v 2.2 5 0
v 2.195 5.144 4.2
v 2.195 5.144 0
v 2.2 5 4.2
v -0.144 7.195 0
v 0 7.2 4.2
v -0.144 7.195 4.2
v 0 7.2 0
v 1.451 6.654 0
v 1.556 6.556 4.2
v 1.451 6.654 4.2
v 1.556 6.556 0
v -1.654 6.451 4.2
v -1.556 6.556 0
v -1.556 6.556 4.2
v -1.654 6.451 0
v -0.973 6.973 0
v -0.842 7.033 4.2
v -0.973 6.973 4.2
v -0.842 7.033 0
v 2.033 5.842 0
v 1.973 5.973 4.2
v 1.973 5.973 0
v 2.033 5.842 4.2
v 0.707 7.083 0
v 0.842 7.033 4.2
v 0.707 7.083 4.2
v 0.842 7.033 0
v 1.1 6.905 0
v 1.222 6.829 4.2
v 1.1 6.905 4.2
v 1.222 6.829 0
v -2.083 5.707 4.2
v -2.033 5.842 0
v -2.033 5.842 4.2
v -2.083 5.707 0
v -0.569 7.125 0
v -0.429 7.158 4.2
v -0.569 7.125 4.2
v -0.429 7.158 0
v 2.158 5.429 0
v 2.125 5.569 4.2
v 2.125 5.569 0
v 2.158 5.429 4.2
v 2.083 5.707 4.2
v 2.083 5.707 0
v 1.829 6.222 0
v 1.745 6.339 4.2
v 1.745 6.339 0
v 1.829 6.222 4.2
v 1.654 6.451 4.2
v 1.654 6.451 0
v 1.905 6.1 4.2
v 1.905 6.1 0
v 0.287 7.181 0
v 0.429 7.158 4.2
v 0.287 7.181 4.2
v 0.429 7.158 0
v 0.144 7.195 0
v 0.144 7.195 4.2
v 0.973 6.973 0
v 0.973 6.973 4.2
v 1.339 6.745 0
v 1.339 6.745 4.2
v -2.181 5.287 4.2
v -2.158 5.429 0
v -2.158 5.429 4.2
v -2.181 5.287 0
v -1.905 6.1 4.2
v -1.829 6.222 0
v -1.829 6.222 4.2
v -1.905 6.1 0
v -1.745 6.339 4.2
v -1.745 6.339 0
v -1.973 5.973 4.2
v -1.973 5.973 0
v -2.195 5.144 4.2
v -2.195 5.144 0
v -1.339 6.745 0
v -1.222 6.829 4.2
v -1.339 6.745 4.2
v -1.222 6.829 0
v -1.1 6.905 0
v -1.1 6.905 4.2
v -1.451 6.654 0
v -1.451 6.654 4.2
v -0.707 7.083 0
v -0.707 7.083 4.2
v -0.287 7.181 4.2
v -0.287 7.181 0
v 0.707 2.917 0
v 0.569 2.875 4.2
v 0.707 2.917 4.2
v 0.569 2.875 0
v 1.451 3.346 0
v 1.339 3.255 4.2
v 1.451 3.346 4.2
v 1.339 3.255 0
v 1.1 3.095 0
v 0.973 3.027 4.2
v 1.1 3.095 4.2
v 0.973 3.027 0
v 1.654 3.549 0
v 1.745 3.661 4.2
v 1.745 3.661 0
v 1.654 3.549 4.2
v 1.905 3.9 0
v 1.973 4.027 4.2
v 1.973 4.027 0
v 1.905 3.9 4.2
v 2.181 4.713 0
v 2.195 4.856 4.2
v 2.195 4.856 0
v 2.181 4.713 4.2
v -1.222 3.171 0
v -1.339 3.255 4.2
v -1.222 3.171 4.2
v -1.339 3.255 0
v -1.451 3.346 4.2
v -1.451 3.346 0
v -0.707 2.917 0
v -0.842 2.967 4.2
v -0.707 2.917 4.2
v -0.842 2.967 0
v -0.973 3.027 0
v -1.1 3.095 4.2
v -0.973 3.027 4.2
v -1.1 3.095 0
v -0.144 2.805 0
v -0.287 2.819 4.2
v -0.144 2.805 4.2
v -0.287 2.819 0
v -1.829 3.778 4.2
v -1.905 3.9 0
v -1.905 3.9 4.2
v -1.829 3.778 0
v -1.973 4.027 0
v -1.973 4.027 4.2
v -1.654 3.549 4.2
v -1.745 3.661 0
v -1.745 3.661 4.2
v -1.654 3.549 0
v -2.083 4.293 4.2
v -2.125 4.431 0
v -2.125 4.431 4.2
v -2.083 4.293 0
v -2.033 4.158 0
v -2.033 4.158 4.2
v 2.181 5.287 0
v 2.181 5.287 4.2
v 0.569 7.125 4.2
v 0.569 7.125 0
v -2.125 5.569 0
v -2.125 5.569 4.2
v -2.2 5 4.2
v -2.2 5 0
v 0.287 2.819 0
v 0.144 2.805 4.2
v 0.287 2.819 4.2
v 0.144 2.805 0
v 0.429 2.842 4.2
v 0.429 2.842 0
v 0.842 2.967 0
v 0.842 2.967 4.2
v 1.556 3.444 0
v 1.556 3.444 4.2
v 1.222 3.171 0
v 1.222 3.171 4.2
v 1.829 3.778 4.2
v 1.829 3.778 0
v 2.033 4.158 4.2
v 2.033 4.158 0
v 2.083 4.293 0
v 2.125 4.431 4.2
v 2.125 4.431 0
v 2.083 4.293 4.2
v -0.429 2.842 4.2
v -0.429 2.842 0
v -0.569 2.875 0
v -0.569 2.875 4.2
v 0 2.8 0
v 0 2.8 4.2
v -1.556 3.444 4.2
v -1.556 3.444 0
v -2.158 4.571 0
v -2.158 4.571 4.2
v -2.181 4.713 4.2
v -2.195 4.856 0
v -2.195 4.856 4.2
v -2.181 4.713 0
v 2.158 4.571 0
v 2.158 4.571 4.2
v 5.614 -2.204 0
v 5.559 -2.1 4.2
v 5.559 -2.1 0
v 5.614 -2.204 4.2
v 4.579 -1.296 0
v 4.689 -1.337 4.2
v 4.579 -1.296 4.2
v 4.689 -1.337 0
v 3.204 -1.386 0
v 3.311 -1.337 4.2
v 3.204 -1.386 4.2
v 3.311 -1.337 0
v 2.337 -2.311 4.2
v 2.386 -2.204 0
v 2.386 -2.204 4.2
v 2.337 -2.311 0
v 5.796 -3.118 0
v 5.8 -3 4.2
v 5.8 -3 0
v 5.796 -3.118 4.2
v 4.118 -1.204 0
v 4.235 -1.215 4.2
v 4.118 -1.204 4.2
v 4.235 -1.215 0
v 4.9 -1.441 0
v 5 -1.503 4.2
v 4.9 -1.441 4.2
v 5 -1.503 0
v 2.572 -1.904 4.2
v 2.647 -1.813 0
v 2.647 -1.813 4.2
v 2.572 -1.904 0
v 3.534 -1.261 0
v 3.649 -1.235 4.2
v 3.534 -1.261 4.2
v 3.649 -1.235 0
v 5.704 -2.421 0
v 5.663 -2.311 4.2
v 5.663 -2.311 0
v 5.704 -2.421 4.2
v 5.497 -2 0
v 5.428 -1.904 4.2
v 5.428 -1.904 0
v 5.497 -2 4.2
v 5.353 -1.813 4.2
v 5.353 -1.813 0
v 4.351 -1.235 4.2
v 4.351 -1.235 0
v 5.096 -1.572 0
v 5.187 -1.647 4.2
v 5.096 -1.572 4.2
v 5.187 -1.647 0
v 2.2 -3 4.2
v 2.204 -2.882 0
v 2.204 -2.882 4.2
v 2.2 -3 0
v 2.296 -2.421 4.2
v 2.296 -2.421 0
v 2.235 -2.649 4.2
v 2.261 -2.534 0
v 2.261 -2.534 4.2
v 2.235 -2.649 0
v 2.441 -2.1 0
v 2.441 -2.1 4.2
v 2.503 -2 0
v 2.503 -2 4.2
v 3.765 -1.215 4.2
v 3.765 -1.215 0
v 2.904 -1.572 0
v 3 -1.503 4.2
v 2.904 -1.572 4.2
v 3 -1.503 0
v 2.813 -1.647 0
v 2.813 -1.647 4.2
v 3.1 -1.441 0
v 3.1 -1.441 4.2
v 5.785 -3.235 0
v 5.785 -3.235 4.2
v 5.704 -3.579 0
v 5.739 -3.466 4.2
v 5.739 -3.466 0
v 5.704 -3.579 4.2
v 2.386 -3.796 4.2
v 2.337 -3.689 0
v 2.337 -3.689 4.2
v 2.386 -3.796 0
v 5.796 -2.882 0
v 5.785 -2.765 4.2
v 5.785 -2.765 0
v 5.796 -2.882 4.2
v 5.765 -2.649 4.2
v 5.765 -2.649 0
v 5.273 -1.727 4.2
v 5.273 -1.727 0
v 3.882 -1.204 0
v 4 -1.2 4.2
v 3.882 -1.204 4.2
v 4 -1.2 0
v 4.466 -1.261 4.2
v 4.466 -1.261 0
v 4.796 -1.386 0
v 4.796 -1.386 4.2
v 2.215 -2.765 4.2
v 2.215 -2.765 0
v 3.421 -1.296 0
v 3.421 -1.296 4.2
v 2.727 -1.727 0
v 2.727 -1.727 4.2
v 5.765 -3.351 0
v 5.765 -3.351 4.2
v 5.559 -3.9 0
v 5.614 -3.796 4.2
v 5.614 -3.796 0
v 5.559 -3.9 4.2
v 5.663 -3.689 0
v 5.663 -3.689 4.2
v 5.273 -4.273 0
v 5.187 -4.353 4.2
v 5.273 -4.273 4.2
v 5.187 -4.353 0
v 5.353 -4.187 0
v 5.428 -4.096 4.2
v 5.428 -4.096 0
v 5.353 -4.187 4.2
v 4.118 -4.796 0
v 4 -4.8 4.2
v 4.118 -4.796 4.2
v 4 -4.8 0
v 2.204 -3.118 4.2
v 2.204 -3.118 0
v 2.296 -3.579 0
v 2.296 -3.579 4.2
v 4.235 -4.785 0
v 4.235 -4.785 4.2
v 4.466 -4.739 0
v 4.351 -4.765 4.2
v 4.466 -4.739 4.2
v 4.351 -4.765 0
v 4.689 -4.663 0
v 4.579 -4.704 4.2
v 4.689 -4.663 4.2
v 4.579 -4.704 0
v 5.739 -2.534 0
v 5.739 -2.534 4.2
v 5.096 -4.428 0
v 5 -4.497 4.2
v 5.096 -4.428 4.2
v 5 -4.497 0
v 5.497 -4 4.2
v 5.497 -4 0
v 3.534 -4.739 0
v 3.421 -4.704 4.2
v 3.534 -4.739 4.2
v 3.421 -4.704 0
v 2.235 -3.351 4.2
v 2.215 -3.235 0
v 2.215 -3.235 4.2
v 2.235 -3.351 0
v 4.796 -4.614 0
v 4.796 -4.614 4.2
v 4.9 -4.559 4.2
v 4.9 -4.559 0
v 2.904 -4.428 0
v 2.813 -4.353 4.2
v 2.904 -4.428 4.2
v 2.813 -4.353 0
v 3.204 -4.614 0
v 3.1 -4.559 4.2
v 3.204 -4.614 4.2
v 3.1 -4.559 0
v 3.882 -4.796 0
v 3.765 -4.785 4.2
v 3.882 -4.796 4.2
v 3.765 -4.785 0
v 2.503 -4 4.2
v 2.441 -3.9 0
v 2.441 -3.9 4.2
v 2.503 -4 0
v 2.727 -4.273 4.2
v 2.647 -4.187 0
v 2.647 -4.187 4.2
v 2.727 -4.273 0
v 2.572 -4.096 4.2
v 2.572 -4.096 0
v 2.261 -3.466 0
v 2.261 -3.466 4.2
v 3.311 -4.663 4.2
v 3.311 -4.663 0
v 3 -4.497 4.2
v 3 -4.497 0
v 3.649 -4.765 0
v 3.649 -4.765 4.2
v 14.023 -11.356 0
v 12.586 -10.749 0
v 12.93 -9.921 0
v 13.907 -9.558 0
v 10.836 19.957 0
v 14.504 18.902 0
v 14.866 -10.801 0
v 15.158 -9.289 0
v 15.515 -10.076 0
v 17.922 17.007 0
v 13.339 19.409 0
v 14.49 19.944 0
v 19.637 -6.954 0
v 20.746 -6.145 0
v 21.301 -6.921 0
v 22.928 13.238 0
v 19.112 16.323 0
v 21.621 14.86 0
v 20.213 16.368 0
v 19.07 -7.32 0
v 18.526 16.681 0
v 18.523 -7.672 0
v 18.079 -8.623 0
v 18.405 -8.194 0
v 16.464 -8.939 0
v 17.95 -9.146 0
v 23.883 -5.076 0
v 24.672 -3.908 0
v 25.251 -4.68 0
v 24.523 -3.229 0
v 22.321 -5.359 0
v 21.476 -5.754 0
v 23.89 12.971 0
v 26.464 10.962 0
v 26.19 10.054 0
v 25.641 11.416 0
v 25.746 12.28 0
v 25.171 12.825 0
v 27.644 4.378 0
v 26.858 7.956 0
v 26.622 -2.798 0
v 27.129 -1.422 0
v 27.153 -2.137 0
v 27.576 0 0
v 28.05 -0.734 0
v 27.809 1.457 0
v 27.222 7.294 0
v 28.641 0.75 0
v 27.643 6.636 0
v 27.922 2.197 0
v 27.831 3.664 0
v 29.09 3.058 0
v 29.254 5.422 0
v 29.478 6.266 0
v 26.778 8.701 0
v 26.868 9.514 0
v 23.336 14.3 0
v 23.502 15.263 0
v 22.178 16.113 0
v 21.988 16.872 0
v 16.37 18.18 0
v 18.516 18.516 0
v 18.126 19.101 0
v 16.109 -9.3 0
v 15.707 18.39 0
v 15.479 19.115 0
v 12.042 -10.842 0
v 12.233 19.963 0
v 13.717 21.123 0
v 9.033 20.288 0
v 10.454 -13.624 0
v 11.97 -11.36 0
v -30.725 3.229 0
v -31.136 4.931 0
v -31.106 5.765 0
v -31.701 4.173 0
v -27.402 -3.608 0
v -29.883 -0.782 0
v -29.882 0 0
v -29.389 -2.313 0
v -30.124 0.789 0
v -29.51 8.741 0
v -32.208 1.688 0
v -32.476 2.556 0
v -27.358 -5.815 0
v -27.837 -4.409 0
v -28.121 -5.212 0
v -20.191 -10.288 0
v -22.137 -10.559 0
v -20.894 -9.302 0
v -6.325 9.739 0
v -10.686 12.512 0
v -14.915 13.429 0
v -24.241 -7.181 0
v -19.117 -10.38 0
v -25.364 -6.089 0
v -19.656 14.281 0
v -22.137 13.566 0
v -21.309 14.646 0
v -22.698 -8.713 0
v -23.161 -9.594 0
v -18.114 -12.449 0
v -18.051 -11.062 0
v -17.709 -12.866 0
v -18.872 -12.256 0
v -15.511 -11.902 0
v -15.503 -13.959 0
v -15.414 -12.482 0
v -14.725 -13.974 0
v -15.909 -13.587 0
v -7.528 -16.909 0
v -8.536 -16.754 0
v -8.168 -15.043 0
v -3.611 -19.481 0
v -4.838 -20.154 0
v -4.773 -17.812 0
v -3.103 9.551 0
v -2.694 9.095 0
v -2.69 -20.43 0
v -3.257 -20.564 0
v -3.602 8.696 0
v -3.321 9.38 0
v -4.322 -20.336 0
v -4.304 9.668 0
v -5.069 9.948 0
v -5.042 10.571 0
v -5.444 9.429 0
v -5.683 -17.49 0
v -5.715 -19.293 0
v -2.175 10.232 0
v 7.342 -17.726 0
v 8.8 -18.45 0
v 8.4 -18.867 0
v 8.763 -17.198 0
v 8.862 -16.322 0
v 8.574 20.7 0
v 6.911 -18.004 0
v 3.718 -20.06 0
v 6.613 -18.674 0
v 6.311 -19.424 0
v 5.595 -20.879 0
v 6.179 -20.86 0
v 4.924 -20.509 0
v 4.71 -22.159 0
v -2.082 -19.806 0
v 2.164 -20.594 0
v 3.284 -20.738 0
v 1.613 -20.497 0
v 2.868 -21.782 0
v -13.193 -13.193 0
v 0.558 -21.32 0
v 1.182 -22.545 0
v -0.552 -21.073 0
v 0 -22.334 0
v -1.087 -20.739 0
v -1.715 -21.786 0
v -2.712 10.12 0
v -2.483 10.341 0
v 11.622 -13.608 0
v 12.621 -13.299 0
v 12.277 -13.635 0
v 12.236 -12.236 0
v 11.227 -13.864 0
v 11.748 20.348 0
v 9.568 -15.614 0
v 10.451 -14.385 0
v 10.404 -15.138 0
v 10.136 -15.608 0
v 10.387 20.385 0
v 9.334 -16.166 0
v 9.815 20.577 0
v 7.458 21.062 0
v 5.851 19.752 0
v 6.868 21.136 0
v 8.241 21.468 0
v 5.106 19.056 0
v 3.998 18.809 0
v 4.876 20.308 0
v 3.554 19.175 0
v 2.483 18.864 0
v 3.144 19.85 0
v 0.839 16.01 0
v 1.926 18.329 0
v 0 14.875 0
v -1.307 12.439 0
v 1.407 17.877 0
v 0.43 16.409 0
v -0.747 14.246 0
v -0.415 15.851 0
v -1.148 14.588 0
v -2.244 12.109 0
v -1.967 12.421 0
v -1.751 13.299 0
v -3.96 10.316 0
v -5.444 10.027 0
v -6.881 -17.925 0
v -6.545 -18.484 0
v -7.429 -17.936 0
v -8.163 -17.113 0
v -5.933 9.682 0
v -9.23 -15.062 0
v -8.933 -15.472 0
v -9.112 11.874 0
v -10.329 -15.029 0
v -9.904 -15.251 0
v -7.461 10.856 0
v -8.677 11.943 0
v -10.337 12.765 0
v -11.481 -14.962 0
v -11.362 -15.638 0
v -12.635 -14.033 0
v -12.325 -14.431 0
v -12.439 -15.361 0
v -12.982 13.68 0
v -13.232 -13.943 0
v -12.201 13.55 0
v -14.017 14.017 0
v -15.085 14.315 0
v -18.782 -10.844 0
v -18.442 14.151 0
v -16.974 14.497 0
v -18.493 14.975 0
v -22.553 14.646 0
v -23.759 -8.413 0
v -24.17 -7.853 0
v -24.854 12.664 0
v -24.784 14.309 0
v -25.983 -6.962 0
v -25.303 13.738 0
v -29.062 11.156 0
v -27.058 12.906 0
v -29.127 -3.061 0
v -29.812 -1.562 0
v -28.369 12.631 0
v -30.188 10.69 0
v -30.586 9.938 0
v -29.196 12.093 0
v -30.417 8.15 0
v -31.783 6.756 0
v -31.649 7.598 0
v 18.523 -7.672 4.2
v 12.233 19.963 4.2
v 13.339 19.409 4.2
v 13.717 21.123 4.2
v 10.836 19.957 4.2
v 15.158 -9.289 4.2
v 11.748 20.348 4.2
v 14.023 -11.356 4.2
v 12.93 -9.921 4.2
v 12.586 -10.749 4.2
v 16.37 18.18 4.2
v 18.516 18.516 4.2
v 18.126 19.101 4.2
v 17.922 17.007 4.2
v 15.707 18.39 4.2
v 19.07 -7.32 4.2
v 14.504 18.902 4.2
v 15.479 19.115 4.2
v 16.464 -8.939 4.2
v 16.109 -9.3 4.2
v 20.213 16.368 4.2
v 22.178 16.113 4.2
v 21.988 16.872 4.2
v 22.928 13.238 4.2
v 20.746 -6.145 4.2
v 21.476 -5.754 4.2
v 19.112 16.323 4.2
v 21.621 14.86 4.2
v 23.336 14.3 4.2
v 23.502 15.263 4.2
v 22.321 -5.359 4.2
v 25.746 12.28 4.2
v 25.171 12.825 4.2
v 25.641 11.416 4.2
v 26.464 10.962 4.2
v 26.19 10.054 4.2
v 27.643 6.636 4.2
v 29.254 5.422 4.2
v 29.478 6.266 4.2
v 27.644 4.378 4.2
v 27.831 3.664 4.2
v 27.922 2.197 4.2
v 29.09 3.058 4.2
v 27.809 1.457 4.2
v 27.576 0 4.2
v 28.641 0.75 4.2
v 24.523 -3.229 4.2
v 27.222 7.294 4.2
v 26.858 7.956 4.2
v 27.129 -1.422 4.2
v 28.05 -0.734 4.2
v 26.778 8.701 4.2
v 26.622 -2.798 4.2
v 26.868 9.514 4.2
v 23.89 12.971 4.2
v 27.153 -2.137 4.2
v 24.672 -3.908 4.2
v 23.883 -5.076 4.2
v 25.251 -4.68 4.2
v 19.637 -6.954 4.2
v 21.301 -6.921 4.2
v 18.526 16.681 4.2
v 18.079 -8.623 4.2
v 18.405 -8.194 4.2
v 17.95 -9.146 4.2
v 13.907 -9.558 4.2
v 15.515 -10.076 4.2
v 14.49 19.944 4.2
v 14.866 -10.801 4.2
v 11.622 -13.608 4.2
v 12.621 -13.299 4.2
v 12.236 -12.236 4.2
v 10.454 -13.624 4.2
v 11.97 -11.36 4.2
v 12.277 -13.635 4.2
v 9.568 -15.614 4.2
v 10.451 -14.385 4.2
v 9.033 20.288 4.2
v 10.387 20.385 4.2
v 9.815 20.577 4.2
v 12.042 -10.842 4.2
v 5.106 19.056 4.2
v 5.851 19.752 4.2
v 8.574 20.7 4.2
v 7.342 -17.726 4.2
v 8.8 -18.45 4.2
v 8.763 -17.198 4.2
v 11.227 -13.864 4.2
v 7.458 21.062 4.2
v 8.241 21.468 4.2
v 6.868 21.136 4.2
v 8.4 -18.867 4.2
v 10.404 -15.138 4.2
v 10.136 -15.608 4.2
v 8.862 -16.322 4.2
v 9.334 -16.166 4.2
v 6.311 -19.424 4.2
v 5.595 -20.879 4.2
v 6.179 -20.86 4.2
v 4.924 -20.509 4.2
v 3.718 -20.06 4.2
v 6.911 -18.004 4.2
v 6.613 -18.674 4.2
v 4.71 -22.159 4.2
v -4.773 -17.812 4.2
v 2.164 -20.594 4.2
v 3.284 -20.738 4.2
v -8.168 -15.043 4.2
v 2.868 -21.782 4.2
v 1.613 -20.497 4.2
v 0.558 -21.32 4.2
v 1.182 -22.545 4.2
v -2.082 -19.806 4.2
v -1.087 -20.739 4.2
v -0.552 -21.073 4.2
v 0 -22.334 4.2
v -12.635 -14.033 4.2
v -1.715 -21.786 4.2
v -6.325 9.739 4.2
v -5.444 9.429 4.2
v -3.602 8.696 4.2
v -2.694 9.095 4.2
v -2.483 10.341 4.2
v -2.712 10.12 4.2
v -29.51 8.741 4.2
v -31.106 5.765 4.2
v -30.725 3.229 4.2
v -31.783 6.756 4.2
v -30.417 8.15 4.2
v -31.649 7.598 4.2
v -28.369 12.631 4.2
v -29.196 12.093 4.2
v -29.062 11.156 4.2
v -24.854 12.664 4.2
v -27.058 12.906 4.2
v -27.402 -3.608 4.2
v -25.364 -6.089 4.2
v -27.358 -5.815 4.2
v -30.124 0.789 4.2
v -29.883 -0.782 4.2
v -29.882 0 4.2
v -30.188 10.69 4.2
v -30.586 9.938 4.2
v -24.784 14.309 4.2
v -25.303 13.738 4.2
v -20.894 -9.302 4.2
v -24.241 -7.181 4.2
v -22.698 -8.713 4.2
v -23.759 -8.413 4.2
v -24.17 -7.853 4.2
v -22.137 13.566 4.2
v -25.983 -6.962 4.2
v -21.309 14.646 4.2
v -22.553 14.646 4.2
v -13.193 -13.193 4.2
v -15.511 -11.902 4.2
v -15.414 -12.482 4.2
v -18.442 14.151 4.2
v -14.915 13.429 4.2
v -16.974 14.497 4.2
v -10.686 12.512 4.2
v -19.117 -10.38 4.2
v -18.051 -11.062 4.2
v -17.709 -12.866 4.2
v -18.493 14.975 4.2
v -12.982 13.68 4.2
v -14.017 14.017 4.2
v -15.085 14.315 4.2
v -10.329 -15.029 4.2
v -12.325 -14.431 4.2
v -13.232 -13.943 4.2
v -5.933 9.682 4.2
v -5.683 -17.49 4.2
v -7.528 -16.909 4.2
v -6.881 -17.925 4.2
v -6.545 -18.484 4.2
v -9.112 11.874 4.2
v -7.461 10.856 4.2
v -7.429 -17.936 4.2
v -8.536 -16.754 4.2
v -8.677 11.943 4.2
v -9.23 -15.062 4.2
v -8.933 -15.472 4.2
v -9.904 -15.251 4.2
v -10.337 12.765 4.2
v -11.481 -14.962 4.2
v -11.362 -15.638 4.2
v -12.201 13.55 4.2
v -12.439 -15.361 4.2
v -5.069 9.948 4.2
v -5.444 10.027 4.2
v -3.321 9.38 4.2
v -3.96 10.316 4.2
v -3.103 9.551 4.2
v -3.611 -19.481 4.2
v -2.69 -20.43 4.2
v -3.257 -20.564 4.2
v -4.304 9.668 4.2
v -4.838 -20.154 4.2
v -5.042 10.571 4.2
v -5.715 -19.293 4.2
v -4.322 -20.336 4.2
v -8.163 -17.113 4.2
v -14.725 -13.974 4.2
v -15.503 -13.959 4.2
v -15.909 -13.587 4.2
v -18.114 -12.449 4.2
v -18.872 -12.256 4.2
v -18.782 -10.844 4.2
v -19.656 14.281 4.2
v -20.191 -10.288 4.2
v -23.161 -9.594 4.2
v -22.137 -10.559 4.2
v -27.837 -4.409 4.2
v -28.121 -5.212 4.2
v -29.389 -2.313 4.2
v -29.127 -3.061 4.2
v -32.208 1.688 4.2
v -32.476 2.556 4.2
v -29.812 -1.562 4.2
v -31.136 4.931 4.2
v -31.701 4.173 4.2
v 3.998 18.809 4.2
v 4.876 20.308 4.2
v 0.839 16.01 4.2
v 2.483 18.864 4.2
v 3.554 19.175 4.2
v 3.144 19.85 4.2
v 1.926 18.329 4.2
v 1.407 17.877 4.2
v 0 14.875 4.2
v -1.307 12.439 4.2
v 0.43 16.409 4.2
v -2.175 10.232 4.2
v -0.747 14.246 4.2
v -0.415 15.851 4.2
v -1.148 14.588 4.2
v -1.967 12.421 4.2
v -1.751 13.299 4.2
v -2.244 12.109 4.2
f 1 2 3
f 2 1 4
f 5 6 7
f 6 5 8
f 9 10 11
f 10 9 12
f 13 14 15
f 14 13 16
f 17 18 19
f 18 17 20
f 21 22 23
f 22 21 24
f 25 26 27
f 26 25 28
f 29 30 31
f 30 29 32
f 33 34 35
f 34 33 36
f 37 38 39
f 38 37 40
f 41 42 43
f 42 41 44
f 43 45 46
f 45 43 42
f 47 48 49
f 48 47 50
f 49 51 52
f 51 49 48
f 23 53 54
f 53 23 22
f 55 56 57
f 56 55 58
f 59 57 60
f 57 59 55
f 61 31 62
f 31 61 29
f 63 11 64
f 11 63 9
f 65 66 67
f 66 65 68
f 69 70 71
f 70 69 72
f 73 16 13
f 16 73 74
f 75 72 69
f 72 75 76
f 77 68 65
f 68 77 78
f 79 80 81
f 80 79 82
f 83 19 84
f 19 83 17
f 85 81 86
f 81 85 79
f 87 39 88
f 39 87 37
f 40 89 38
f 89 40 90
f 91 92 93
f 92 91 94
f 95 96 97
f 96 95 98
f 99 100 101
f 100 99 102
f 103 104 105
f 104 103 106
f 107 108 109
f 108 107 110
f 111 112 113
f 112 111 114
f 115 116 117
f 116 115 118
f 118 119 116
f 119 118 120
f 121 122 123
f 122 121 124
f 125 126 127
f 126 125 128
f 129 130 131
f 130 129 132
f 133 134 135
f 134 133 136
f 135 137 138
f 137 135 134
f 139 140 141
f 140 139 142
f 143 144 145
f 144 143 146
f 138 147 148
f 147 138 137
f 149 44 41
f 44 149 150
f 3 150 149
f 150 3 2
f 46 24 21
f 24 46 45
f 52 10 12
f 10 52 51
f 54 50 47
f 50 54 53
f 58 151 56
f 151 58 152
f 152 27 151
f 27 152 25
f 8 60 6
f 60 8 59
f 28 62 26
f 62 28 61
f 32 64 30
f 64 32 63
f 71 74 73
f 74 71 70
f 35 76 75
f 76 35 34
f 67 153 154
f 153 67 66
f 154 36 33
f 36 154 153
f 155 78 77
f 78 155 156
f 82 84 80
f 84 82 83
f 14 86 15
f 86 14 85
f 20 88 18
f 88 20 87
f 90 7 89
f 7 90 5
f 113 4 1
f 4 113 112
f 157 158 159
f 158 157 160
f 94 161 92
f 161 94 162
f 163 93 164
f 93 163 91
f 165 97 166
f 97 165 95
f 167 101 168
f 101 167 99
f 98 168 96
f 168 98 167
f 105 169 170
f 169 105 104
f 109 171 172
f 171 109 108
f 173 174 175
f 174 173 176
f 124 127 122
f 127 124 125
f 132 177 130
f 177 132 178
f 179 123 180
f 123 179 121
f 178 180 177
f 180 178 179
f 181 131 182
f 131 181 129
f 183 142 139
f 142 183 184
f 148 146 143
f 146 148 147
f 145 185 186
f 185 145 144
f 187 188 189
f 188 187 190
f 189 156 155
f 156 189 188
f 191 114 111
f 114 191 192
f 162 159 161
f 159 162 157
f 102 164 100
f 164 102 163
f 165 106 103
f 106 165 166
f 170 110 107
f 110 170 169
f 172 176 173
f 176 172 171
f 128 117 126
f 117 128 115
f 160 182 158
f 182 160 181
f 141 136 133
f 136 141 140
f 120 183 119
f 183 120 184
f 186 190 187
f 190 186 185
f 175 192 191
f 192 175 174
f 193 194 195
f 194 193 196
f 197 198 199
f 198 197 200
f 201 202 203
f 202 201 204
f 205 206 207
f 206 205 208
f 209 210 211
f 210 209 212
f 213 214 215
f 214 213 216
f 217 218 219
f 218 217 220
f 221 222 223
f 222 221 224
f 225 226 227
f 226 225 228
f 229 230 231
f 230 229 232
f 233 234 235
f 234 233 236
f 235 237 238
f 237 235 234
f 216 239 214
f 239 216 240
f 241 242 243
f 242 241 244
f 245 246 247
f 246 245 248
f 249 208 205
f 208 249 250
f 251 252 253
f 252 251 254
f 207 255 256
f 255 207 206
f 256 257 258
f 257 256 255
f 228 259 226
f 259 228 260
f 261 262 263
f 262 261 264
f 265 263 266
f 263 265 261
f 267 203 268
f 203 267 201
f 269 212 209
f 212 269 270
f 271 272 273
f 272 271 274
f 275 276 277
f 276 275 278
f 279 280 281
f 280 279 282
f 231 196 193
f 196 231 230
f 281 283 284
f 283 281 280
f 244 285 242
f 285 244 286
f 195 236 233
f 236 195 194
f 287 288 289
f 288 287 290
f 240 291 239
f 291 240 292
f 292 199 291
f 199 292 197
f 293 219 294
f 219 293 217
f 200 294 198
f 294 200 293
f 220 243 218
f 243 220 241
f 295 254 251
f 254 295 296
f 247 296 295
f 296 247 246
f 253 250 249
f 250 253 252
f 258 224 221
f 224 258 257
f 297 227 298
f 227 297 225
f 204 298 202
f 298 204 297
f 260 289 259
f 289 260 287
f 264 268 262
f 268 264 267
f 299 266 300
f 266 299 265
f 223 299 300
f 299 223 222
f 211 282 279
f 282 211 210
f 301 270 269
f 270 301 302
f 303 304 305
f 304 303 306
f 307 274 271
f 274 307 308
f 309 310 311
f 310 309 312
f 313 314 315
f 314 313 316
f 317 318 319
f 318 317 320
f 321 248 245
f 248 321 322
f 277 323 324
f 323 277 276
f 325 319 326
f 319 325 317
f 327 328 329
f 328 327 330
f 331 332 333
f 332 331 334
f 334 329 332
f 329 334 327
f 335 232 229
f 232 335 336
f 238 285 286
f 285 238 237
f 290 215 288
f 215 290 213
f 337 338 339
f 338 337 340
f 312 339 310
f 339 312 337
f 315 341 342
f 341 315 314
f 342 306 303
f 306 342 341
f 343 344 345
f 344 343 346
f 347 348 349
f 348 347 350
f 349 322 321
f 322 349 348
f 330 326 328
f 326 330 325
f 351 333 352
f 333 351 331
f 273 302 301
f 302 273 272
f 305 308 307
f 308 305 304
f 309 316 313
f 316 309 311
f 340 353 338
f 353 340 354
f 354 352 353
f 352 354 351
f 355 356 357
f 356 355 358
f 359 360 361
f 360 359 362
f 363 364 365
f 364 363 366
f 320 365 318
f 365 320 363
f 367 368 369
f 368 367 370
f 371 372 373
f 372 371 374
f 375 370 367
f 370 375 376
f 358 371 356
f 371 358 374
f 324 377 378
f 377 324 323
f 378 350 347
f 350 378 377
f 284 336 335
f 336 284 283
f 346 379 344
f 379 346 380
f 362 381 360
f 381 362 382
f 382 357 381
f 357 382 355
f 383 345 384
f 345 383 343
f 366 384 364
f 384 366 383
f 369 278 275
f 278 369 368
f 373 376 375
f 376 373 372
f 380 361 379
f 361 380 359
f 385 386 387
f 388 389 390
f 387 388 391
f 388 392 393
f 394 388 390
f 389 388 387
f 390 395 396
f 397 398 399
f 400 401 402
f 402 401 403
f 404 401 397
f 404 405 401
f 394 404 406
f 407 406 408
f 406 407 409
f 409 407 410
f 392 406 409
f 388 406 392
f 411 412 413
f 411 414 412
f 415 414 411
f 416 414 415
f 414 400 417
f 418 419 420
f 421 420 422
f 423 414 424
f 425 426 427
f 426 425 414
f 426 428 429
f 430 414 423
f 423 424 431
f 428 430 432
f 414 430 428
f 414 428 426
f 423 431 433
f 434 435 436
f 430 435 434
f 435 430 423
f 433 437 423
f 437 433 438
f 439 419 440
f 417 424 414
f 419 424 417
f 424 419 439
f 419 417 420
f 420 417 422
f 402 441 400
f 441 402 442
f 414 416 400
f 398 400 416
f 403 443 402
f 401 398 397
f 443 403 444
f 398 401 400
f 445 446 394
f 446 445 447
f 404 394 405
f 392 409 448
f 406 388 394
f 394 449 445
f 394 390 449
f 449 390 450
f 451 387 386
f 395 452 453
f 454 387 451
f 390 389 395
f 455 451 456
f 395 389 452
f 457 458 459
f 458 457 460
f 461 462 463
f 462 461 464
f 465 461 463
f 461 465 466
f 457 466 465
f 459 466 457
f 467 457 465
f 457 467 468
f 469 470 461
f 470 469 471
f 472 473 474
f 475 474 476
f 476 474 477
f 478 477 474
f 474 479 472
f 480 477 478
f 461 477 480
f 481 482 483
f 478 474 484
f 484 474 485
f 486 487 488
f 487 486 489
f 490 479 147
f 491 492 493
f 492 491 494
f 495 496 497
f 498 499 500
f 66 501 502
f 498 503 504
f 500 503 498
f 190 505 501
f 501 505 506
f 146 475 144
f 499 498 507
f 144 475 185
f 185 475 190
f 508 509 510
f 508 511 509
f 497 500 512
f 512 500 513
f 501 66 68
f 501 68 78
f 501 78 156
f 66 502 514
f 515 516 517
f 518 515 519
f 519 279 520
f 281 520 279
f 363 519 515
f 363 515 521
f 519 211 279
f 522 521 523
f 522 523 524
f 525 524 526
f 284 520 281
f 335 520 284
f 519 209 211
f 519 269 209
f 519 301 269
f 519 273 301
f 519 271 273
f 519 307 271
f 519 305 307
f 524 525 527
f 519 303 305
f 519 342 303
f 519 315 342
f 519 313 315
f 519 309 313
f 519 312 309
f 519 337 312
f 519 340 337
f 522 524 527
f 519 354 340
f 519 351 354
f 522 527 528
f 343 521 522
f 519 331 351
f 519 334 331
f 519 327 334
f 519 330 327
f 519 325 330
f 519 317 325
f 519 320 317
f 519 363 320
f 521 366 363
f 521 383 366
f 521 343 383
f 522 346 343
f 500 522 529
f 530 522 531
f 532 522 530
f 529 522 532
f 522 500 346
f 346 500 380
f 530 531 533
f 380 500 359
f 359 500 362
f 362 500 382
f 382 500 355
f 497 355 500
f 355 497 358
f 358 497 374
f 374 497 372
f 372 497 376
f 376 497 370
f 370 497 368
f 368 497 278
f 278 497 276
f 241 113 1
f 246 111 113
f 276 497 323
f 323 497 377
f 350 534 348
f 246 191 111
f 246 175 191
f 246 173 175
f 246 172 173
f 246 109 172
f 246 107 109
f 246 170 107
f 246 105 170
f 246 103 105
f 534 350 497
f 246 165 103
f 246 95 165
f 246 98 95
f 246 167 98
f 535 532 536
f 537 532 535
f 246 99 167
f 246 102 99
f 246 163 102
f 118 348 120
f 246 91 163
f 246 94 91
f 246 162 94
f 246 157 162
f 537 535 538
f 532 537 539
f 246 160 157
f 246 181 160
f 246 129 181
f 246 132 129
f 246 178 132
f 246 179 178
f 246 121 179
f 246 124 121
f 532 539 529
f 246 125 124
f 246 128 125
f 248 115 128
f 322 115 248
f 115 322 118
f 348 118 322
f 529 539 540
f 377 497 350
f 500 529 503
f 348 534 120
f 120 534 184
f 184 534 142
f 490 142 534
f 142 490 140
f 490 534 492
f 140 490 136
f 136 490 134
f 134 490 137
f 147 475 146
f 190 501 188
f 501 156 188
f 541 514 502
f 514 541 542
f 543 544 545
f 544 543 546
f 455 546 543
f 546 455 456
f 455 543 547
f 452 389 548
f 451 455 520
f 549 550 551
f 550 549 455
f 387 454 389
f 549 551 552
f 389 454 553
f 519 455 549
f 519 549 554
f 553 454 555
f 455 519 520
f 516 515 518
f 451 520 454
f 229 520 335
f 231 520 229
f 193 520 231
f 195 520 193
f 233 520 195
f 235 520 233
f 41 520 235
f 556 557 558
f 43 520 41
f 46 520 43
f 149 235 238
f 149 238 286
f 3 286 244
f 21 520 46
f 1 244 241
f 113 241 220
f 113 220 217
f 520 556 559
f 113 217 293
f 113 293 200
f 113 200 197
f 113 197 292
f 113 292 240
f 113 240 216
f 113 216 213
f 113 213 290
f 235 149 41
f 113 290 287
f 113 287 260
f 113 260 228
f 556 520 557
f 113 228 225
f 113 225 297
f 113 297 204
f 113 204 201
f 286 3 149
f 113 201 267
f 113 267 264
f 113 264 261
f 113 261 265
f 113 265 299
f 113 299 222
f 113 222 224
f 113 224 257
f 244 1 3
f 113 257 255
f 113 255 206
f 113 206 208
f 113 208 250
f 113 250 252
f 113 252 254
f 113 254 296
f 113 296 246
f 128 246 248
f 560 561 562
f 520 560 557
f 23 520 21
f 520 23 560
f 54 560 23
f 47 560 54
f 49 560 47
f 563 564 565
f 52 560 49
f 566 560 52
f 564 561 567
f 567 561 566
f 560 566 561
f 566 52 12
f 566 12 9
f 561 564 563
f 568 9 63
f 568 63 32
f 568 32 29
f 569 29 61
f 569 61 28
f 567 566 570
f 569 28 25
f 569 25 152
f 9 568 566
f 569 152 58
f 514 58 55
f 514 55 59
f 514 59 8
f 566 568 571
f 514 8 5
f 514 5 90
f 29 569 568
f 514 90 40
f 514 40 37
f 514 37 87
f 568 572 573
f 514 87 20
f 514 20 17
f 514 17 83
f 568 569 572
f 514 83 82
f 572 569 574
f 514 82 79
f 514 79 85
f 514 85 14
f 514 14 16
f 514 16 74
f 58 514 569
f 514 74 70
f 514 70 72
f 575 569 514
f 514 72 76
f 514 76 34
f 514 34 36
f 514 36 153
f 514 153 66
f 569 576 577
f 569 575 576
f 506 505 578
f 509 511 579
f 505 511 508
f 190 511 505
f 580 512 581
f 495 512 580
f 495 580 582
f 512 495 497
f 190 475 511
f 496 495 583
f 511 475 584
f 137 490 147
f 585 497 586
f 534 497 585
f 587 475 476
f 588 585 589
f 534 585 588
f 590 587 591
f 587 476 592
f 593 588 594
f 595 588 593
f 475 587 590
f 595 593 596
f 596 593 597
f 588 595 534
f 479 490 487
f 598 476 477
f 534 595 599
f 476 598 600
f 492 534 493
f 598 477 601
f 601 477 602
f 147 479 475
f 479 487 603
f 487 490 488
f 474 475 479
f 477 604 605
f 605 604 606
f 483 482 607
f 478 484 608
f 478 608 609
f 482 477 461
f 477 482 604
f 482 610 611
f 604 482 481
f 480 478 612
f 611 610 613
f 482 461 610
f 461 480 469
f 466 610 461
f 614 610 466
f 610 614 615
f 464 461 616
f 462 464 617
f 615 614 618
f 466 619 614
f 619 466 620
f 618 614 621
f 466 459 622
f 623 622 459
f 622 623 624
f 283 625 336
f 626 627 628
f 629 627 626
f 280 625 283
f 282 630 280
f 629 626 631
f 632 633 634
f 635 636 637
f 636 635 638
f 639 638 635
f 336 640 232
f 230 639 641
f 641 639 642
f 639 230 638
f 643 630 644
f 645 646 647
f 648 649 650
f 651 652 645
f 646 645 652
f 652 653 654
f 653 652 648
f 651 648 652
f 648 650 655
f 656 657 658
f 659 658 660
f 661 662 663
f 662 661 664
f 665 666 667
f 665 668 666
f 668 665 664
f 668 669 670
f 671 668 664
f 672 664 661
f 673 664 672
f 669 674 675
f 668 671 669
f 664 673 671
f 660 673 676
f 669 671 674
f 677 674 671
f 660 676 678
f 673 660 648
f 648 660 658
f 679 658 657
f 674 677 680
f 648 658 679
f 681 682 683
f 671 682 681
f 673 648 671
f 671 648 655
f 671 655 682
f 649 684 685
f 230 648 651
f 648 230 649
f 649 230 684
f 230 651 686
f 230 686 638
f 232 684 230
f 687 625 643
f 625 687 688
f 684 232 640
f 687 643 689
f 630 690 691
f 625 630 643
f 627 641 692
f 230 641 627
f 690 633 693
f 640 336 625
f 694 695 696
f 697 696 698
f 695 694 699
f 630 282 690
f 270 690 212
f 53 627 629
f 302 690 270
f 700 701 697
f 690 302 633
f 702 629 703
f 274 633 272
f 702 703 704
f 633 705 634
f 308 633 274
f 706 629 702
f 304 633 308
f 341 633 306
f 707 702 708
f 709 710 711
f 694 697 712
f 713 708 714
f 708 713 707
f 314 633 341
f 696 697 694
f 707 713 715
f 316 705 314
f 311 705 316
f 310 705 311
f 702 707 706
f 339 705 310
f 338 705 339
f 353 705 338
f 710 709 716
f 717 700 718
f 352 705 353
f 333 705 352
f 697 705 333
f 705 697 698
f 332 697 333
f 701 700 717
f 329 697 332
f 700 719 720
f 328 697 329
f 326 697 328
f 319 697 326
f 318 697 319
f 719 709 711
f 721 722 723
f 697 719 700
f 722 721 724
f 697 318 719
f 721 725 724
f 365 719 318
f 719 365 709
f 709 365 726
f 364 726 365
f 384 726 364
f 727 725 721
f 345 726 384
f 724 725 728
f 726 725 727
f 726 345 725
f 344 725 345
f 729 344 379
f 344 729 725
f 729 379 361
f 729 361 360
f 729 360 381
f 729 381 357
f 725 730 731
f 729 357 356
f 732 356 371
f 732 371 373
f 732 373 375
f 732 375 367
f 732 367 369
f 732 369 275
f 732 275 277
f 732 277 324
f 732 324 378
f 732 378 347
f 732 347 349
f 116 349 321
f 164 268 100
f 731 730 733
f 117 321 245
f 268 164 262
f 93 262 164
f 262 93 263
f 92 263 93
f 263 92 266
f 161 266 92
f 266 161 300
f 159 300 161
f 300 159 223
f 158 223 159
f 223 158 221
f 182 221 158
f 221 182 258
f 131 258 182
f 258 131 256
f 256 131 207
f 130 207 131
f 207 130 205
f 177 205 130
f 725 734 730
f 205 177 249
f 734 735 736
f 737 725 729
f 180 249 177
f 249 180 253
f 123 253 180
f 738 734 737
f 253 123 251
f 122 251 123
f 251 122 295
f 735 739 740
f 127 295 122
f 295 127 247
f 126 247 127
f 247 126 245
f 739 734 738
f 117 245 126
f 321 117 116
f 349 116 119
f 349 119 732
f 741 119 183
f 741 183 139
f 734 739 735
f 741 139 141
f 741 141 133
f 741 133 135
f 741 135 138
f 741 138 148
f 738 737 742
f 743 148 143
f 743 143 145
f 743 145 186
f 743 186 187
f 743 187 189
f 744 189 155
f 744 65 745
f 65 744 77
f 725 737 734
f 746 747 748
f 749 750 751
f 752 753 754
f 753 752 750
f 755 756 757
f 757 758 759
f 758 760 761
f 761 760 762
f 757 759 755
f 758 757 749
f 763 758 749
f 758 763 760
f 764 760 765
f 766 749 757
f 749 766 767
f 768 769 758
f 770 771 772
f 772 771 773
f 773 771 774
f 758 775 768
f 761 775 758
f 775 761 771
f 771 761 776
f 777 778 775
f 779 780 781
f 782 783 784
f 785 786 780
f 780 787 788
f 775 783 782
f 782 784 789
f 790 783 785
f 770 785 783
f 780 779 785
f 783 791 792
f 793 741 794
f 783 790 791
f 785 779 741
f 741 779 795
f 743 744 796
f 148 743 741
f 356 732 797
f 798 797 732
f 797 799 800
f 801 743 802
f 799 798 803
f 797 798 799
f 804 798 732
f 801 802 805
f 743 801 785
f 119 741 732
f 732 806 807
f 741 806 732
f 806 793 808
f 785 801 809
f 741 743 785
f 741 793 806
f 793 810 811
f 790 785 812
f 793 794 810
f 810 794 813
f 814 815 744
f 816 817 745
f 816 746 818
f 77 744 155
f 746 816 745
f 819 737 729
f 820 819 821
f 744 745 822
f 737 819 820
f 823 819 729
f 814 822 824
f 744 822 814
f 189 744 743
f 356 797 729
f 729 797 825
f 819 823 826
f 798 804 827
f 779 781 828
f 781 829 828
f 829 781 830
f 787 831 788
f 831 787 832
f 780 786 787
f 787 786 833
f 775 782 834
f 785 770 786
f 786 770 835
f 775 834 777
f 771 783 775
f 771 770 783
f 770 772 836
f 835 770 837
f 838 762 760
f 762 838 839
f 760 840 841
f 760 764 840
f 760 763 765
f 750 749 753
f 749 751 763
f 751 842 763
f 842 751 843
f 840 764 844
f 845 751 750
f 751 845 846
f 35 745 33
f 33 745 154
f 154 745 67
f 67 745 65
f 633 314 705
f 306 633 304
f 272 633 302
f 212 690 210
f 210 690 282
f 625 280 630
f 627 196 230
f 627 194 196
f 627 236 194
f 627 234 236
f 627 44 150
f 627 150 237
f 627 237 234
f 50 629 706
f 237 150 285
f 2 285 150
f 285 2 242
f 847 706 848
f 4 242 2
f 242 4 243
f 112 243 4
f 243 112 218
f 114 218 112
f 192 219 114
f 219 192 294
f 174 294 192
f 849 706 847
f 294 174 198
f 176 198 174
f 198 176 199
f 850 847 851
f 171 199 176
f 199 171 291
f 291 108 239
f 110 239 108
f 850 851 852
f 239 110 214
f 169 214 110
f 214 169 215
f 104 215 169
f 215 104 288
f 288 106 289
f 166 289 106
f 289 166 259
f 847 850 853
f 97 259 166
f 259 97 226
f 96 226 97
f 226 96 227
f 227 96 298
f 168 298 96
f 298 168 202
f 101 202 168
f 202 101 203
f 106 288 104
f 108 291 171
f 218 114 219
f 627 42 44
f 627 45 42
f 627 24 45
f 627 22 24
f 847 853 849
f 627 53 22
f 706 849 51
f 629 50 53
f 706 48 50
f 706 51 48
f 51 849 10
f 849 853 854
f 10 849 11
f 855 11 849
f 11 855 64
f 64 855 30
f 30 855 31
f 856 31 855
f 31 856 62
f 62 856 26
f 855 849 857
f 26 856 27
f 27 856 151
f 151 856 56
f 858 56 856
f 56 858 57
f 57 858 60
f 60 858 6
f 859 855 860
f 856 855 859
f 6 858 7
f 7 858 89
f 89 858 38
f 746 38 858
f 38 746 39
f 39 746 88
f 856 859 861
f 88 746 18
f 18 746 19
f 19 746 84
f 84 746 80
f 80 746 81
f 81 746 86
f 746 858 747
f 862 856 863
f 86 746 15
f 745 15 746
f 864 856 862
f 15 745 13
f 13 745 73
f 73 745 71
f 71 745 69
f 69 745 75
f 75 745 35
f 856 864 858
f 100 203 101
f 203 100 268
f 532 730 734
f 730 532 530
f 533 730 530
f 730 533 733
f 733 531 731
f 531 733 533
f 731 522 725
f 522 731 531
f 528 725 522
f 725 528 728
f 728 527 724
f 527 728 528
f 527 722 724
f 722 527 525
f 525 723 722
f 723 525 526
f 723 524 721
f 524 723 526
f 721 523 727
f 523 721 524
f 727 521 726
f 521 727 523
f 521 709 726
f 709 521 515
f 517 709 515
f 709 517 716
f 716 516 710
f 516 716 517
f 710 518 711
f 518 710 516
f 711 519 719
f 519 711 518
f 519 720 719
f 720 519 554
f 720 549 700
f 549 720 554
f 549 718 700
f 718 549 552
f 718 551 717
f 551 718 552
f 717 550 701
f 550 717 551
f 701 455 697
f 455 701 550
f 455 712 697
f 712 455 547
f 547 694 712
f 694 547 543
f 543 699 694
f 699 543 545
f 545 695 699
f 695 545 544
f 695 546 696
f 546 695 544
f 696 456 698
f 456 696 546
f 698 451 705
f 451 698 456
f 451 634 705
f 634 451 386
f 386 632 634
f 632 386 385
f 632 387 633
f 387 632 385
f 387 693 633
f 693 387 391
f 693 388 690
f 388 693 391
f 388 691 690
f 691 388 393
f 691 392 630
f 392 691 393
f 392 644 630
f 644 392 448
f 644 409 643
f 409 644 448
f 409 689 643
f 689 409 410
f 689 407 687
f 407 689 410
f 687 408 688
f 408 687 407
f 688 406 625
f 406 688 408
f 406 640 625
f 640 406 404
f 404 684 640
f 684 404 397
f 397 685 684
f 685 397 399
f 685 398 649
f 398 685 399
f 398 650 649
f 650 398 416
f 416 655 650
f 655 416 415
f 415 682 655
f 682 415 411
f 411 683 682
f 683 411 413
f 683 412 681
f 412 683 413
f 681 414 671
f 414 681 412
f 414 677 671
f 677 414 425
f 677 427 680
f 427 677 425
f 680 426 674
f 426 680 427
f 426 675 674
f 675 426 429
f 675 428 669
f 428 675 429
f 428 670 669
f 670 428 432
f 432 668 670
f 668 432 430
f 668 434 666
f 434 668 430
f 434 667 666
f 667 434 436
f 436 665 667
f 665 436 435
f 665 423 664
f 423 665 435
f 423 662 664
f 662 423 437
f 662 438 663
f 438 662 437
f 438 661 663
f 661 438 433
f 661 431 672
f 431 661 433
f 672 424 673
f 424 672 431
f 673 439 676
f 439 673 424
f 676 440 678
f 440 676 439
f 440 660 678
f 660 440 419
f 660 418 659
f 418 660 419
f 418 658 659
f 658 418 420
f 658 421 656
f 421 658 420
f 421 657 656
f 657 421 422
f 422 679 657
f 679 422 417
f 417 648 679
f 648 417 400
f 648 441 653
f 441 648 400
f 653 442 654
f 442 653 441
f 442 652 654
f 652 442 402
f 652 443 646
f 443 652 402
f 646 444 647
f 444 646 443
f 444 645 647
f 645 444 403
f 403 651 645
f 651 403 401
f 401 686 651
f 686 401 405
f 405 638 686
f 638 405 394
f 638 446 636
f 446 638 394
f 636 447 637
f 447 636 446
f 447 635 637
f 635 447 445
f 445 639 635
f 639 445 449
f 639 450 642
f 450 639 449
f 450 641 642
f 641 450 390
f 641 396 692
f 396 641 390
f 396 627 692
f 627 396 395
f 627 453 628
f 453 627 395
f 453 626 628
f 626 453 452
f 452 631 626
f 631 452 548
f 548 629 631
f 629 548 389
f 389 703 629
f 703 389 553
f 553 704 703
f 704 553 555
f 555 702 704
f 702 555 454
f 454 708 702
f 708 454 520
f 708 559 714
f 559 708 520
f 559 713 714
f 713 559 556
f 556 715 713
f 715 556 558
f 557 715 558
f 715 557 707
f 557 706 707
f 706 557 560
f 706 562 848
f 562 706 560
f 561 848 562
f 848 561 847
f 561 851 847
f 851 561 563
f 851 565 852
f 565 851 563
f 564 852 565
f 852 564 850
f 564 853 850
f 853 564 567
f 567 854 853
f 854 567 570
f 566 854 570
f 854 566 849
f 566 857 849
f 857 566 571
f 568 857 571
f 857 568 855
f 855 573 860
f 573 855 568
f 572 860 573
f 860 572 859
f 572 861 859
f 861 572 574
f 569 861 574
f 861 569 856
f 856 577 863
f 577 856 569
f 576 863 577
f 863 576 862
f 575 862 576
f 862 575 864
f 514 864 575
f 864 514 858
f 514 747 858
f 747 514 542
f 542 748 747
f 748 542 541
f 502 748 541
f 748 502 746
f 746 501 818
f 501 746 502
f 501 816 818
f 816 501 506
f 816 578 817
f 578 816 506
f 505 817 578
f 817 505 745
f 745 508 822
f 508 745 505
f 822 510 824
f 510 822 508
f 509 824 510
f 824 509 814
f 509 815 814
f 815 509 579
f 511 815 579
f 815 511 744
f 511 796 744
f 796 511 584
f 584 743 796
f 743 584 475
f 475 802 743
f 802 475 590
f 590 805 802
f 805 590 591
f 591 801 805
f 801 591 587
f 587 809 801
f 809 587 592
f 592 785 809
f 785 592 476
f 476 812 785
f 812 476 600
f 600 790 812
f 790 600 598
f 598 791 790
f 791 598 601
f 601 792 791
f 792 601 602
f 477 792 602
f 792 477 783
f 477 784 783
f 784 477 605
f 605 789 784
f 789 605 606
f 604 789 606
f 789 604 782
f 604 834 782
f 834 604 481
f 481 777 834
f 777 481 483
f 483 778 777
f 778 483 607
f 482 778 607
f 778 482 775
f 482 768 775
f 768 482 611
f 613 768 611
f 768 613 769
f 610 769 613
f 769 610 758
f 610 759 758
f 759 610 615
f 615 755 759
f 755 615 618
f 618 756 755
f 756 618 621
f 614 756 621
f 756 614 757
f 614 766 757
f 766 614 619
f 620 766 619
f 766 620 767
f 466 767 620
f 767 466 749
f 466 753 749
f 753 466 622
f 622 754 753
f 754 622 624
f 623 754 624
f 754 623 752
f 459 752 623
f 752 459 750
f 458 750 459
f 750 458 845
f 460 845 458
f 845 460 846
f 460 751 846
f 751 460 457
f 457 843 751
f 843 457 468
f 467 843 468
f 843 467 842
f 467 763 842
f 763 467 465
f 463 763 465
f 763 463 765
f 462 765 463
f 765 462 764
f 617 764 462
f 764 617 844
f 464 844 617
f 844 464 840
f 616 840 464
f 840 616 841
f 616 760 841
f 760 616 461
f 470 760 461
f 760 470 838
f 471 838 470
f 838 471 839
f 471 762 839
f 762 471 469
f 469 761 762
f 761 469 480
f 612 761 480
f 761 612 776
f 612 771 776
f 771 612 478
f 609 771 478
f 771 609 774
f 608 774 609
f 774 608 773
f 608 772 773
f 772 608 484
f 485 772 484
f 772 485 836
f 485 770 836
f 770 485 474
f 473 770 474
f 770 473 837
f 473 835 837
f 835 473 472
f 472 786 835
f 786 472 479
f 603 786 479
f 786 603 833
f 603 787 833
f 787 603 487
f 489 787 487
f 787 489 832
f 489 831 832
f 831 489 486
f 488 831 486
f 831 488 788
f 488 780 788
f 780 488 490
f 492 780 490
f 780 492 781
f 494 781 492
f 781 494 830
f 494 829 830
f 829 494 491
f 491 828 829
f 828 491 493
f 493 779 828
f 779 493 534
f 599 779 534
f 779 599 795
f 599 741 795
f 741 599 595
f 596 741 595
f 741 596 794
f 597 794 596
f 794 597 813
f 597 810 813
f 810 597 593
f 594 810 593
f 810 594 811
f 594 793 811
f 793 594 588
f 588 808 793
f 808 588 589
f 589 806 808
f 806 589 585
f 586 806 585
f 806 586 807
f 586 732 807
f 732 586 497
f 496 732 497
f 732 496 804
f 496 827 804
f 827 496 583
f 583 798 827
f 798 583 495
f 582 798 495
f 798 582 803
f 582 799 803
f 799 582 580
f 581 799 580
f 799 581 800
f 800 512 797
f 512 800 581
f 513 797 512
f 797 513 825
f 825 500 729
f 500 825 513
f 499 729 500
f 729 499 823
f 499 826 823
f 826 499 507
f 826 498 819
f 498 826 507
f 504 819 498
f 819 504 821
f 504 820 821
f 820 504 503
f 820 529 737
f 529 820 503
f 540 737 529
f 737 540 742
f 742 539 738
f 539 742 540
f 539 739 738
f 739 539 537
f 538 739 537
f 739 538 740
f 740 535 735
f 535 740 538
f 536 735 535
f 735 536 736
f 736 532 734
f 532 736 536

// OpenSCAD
$fn=96;
thickness_mm = 4.2;
holes = [[0.0, 5.0, 2.2], [4.0, -3.0, 1.8]];
pts = [[27.5759, 0.0], [28.6406, 0.75], [27.8087, 1.4574], [27.9221, 2.1975], [29.09, 3.0575], [27.8306, 3.664], [27.644, 4.3784], [29.254, 5.4219], [29.4778, 6.2657], [27.6426, 6.6364], [27.2225, 7.2943], [26.8583, 7.9558], [26.7778, 8.7006], [26.8681, 9.5145], [26.1905, 10.0536], [26.4643, 10.9619], [25.6407, 11.416], [25.7456, 12.28], [25.1711, 12.8253], [23.8897, 12.971], [22.9283, 13.2376], [23.3361, 14.3004], [23.5023, 15.2626], [21.6208, 14.8596], [22.1778, 16.1131], [21.988, 16.872], [20.2133, 16.3684], [19.1118, 16.3231], [18.5264, 16.6813], [17.9216, 17.0069], [18.5161, 18.5161], [18.126, 19.1009], [16.3698, 18.1805], [15.7068, 18.3902], [15.4792, 19.1152], [14.5043, 18.9023], [14.4903, 19.9442], [13.3393, 19.4088], [13.7173, 21.1228], [12.2331, 19.9626], [11.7481, 20.3483], [10.8357, 19.9569], [10.3867, 20.3851], [9.8146, 20.5767], [9.0326, 20.2876], [8.5741, 20.6996], [8.2409, 21.4682], [7.4585, 21.0622], [6.8677, 21.1365], [5.8509, 19.7524], [5.106, 19.0559], [4.8756, 20.3084], [3.998, 18.8091], [3.5539, 19.1754], [3.1439, 19.8498], [2.4835, 18.8642], [1.9264, 18.3288], [1.4069, 17.8769], [0.8391, 16.0103], [0.4297, 16.4088], [0.0, 14.8754], [-0.4151, 15.8514], [-0.7466, 14.2457], [-1.1481, 14.5881], [-1.3073, 12.4386], [-1.7508, 13.2987], [-1.9673, 12.4209], [-2.2443, 12.1092], [-2.1749, 10.232], [-2.4826, 10.3406], [-2.7117, 10.1203], [-2.6941, 9.0951], [-3.1034, 9.5514], [-3.3215, 9.3796], [-3.96, 10.3161], [-3.6022, 8.6965], [-4.3044, 9.6678], [-5.0422, 10.5712], [-5.0688, 9.948], [-5.4443, 10.0272], [-5.4436, 9.4286], [-5.9334, 9.6825], [-6.3249, 9.7395], [-7.461, 10.8558], [-8.677, 11.9429], [-9.1116, 11.8744], [-10.3367, 12.7648], [-10.6862, 12.5119], [-12.2007, 13.5502], [-12.9818, 13.6799], [-14.0166, 14.0166], [-15.0853, 14.3154], [-14.9146, 13.4291], [-16.974, 14.4972], [-18.4926, 14.975], [-18.4425, 14.1514], [-19.6563, 14.2811], [-21.3094, 14.6455], [-22.5534, 14.6464], [-22.1372, 13.5657], [-24.7842, 14.3092], [-25.303, 13.7384], [-24.8545, 12.664], [-27.0578, 12.9059], [-28.369, 12.6307], [-29.1955, 12.0932], [-29.0624, 11.156], [-30.1884, 10.6903], [-30.5862, 9.9381], [-29.5101, 8.7413], [-30.4174, 8.1503], [-31.6492, 7.5983], [-31.7833, 6.7557], [-31.1057, 5.7651], [-31.136, 4.9315], [-31.7011, 4.1735], [-30.7248, 3.2293], [-32.4763, 2.5559], [-32.2079, 1.6879], [-30.1238, 0.7888], [-29.8825, 0.0], [-29.8833, -0.7825], [-29.8118, -1.5624], [-29.389, -2.313], [-29.1267, -3.0613], [-27.4017, -3.6075], [-27.8374, -4.409], [-28.1207, -5.2119], [-27.3575, -5.815], [-25.3645, -6.0895], [-25.9833, -6.9622], [-24.2413, -7.1806], [-24.1697, -7.8532], [-23.7588, -8.4134], [-22.6978, -8.7129], [-23.161, -9.5936], [-20.8936, -9.3024], [-22.1368, -10.5587], [-20.1914, -10.288], [-19.1169, -10.3796], [-18.7815, -10.8435], [-18.0514, -11.0619], [-18.872, -12.2556], [-18.114, -12.4494], [-17.7088, -12.8662], [-15.5114, -11.9024], [-15.4138, -12.4819], [-15.9088, -13.5874], [-15.5034, -13.9593], [-14.7252, -13.9737], [-13.1927, -13.1927], [-13.2318, -13.9434], [-12.6354, -14.0331], [-12.325, -14.4308], [-12.4389, -15.3608], [-11.481, -14.9624], [-11.3621, -15.6385], [-10.3294, -15.0294], [-9.9043, -15.2513], [-9.2297, -15.0616], [-8.9327, -15.472], [-8.1675, -15.0427], [-8.5365, -16.7538], [-8.1627, -17.1134], [-7.5284, -16.909], [-7.4294, -17.9361], [-6.8808, -17.9252], [-6.5455, -18.4839], [-5.6827, -17.4895], [-5.7149, -19.2932], [-4.7726, -17.8117], [-4.8385, -20.1538], [-4.3225, -20.3357], [-3.6106, -19.4809], [-3.257, -20.5639], [-2.6897, -20.43], [-2.0817, -19.8063], [-1.7146, -21.7857], [-1.0869, -20.7394], [-0.5518, -21.0733], [-0.0, -22.3341], [0.5583, -21.3204], [1.1816, -22.5454], [1.6132, -20.4971], [2.1645, -20.5938], [2.8677, -21.782], [3.2845, -20.7378], [3.718, -20.0603], [4.7101, -22.1594], [4.9238, -20.5092], [5.5946, -20.8794], [6.179, -20.8601], [6.3112, -19.4239], [6.613, -18.6745], [6.911, -18.0038], [7.3422, -17.7255], [8.4, -18.8667], [8.8001, -18.4498], [8.7626, -17.1976], [8.8622, -16.3222], [9.3337, -16.1665], [9.5685, -15.6143], [10.1361, -15.6083], [10.4037, -15.1375], [10.4511, -14.3847], [10.4544, -13.6244], [11.2269, -13.8641], [11.6224, -13.6081], [12.2771, -13.6351], [12.6207, -13.2994], [12.236, -12.236], [11.9705, -11.3596], [12.0416, -10.8423], [12.5858, -10.7493], [14.0231, -11.3557], [12.9296, -9.9213], [14.8665, -10.8011], [13.9066, -9.5577], [15.515, -10.0756], [15.1584, -9.2891], [16.1089, -9.3005], [16.4644, -8.9394], [17.9495, -9.1457], [18.0791, -8.6233], [18.4052, -8.1945], [18.5228, -7.6724], [19.0698, -7.3202], [19.637, -6.9538], [21.3009, -6.9211], [20.7459, -6.1452], [21.4762, -5.7545], [22.3208, -5.3587], [23.8828, -5.0764], [25.2507, -4.6799], [24.6721, -3.9077], [24.5234, -3.2286], [26.6221, -2.7981], [27.1528, -2.137], [27.1287, -1.4218], [28.0495, -0.7345]];
module body(){
  linear_extrude(height=thickness_mm) polygon(points=pts);
}
difference(){
  body();
  for(h=holes){
    translate([h[0], h[1], -1]) cylinder(h=thickness_mm+2, r=h[2]);
  }
}
